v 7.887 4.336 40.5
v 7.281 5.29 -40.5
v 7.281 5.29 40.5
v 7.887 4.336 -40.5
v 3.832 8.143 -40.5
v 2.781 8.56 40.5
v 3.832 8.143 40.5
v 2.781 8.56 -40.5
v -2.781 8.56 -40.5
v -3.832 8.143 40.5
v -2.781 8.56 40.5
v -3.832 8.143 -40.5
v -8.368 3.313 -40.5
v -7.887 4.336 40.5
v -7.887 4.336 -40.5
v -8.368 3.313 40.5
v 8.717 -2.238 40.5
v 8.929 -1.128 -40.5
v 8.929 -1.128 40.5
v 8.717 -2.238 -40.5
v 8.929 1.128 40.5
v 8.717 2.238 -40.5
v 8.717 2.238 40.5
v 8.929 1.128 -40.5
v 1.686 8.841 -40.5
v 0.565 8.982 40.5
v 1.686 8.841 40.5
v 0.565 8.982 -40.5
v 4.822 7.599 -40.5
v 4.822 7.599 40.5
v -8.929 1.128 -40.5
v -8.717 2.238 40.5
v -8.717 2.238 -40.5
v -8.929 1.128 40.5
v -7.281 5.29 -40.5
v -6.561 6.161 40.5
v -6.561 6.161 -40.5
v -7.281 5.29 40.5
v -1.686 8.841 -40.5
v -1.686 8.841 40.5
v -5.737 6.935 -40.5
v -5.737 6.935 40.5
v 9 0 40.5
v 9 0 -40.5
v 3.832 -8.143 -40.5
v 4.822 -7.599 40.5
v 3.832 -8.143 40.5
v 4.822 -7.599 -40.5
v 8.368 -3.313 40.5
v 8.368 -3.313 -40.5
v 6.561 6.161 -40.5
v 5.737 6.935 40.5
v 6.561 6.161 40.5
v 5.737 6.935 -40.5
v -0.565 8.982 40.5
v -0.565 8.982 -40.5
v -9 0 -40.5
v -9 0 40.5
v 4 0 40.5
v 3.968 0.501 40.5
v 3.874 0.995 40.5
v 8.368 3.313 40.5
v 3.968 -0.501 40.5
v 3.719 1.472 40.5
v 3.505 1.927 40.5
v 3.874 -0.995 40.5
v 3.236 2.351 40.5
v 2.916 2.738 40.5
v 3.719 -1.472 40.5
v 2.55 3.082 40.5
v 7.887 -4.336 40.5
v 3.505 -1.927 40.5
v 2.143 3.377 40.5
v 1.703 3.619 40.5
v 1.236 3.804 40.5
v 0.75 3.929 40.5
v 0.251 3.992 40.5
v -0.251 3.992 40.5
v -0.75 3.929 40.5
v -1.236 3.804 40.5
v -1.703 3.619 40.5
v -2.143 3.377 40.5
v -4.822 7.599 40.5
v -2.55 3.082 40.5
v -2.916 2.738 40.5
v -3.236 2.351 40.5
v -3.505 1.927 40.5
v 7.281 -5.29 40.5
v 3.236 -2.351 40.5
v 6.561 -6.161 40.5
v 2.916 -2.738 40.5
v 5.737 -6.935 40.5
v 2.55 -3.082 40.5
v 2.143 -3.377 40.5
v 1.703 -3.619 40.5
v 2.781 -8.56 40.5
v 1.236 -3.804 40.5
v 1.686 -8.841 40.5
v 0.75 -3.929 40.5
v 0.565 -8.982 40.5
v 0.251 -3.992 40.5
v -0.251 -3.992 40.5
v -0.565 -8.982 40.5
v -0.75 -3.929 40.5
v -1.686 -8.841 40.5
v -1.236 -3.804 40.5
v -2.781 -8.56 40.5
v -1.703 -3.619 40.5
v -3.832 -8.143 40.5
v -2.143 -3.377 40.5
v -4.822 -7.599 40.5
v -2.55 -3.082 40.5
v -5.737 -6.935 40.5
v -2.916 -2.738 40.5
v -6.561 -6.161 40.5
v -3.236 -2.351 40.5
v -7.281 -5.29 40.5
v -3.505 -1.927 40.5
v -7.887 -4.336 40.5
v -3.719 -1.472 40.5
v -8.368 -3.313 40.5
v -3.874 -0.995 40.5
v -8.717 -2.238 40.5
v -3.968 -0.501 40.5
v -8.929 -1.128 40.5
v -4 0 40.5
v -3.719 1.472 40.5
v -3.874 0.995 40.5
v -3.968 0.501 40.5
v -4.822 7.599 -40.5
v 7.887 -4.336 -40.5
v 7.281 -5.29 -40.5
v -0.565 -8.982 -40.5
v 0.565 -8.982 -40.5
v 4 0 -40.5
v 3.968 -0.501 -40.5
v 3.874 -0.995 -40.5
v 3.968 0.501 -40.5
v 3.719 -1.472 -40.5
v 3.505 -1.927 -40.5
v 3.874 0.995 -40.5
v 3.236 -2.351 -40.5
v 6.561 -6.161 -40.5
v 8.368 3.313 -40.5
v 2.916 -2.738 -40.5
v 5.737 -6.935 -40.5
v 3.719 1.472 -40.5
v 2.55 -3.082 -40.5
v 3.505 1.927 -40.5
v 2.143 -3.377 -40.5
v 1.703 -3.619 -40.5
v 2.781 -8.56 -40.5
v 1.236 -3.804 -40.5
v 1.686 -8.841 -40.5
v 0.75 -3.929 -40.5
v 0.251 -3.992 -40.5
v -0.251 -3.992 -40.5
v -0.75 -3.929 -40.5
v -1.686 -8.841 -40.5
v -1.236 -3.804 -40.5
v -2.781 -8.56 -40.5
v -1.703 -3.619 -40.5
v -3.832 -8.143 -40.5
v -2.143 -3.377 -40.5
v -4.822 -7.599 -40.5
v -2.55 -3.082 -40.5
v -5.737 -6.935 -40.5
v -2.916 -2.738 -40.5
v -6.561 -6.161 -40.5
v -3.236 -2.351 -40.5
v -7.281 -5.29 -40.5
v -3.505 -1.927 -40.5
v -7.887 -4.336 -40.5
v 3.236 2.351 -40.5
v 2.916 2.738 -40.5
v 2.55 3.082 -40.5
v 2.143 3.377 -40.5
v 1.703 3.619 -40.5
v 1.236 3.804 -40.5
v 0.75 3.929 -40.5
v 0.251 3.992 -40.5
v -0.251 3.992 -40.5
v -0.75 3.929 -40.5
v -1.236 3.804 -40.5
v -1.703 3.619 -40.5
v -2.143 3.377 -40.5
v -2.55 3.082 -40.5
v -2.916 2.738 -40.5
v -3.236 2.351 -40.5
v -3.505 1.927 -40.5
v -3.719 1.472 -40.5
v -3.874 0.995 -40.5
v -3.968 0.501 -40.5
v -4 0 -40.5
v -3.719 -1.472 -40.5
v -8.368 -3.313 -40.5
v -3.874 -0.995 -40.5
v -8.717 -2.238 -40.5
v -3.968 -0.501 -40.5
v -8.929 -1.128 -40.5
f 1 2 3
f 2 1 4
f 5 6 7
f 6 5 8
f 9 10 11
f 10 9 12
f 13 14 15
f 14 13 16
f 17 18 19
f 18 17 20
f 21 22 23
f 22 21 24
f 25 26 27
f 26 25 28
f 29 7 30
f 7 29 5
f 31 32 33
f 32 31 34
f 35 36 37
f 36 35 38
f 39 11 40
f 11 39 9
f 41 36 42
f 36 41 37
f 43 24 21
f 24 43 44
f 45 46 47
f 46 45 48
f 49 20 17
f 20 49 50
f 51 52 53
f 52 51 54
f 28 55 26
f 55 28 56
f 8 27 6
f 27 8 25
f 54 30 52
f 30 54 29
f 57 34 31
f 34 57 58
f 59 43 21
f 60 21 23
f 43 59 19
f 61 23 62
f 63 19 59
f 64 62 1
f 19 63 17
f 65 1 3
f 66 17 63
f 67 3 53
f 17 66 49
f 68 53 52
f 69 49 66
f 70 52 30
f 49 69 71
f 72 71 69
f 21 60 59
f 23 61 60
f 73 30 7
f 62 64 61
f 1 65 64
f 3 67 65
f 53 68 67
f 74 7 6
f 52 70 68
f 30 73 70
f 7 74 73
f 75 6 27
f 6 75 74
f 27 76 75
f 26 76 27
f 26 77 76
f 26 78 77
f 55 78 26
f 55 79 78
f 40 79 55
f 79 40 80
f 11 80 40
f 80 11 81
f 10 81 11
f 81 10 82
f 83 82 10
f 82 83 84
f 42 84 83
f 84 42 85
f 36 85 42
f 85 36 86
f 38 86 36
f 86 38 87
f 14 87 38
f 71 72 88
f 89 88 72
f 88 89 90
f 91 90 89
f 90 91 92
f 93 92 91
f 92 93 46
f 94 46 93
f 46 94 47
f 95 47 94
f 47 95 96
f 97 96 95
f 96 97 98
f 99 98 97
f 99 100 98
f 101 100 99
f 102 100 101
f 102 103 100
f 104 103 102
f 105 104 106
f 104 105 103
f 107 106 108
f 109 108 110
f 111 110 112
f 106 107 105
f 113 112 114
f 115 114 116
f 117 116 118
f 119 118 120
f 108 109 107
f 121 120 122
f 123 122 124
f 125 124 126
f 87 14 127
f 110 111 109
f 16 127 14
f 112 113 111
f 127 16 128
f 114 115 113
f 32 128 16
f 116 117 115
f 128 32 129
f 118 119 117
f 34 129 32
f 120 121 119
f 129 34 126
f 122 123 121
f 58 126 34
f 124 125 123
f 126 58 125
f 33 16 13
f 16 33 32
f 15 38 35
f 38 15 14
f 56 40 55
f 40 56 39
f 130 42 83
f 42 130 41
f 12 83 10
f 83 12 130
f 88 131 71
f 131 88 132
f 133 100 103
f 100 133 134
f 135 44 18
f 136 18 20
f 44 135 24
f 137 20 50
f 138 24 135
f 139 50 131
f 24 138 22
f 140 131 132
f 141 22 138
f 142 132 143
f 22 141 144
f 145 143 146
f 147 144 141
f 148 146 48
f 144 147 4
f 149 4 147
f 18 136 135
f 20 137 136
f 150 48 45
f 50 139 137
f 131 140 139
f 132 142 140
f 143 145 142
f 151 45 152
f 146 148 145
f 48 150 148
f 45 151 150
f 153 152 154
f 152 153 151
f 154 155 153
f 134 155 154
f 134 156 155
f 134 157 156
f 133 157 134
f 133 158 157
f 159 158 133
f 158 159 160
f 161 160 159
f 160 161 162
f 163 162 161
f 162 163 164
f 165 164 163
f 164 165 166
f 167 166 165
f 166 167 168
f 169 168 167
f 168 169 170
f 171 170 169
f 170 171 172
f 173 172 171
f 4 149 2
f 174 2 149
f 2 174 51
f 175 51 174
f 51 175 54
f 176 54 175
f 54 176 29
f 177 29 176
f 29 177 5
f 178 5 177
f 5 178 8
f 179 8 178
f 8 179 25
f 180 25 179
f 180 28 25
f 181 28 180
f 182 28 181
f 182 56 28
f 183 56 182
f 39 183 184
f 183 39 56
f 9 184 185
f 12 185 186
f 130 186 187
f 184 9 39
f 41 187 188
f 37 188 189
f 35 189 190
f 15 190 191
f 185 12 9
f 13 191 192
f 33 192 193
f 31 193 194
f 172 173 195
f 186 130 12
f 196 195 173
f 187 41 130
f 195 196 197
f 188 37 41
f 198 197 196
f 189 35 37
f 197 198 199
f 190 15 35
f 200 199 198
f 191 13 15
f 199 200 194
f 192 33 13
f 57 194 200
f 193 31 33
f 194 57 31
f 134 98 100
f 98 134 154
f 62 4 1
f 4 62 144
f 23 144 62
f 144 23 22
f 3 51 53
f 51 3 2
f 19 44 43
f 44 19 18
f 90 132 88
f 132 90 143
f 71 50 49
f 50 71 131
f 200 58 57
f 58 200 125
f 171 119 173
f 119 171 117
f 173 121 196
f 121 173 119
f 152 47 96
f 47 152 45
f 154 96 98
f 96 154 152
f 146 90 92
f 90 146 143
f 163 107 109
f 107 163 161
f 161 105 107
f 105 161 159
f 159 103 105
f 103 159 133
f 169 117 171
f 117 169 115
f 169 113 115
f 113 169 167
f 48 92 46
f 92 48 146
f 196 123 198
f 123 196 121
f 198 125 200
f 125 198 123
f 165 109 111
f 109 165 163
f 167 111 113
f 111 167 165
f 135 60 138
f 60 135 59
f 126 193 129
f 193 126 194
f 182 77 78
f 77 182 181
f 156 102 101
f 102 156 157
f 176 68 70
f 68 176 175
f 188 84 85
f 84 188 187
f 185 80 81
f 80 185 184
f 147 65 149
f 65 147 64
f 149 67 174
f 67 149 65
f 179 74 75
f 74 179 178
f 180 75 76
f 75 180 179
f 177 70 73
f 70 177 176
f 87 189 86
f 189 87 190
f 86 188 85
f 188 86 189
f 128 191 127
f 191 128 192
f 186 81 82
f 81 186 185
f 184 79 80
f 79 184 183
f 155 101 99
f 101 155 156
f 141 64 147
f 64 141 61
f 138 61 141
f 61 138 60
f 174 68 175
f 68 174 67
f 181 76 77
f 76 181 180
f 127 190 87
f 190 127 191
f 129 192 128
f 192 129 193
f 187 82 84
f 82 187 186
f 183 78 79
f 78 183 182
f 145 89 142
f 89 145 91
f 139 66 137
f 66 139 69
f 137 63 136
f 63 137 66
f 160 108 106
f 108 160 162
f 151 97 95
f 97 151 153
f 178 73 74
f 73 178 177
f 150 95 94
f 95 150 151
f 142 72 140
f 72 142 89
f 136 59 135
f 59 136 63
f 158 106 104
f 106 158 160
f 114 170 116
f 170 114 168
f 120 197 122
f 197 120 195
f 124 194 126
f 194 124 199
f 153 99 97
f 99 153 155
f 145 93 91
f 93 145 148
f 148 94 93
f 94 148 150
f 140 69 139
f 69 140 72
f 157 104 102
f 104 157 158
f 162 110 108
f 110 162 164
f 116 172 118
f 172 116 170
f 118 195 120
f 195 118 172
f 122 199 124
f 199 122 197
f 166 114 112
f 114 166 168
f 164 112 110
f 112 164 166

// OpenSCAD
$fn = 50;


difference() {
	union() {
		translate(v = [0, 0, -40.5000000000]) {
			cylinder(h = 81, r = 9.0000000000);
		}
	}
	union() {
		translate(v = [0, 0, -100.0000000000]) {
			cylinder(h = 200, r = 4.0000000000);
		}
	}
}
